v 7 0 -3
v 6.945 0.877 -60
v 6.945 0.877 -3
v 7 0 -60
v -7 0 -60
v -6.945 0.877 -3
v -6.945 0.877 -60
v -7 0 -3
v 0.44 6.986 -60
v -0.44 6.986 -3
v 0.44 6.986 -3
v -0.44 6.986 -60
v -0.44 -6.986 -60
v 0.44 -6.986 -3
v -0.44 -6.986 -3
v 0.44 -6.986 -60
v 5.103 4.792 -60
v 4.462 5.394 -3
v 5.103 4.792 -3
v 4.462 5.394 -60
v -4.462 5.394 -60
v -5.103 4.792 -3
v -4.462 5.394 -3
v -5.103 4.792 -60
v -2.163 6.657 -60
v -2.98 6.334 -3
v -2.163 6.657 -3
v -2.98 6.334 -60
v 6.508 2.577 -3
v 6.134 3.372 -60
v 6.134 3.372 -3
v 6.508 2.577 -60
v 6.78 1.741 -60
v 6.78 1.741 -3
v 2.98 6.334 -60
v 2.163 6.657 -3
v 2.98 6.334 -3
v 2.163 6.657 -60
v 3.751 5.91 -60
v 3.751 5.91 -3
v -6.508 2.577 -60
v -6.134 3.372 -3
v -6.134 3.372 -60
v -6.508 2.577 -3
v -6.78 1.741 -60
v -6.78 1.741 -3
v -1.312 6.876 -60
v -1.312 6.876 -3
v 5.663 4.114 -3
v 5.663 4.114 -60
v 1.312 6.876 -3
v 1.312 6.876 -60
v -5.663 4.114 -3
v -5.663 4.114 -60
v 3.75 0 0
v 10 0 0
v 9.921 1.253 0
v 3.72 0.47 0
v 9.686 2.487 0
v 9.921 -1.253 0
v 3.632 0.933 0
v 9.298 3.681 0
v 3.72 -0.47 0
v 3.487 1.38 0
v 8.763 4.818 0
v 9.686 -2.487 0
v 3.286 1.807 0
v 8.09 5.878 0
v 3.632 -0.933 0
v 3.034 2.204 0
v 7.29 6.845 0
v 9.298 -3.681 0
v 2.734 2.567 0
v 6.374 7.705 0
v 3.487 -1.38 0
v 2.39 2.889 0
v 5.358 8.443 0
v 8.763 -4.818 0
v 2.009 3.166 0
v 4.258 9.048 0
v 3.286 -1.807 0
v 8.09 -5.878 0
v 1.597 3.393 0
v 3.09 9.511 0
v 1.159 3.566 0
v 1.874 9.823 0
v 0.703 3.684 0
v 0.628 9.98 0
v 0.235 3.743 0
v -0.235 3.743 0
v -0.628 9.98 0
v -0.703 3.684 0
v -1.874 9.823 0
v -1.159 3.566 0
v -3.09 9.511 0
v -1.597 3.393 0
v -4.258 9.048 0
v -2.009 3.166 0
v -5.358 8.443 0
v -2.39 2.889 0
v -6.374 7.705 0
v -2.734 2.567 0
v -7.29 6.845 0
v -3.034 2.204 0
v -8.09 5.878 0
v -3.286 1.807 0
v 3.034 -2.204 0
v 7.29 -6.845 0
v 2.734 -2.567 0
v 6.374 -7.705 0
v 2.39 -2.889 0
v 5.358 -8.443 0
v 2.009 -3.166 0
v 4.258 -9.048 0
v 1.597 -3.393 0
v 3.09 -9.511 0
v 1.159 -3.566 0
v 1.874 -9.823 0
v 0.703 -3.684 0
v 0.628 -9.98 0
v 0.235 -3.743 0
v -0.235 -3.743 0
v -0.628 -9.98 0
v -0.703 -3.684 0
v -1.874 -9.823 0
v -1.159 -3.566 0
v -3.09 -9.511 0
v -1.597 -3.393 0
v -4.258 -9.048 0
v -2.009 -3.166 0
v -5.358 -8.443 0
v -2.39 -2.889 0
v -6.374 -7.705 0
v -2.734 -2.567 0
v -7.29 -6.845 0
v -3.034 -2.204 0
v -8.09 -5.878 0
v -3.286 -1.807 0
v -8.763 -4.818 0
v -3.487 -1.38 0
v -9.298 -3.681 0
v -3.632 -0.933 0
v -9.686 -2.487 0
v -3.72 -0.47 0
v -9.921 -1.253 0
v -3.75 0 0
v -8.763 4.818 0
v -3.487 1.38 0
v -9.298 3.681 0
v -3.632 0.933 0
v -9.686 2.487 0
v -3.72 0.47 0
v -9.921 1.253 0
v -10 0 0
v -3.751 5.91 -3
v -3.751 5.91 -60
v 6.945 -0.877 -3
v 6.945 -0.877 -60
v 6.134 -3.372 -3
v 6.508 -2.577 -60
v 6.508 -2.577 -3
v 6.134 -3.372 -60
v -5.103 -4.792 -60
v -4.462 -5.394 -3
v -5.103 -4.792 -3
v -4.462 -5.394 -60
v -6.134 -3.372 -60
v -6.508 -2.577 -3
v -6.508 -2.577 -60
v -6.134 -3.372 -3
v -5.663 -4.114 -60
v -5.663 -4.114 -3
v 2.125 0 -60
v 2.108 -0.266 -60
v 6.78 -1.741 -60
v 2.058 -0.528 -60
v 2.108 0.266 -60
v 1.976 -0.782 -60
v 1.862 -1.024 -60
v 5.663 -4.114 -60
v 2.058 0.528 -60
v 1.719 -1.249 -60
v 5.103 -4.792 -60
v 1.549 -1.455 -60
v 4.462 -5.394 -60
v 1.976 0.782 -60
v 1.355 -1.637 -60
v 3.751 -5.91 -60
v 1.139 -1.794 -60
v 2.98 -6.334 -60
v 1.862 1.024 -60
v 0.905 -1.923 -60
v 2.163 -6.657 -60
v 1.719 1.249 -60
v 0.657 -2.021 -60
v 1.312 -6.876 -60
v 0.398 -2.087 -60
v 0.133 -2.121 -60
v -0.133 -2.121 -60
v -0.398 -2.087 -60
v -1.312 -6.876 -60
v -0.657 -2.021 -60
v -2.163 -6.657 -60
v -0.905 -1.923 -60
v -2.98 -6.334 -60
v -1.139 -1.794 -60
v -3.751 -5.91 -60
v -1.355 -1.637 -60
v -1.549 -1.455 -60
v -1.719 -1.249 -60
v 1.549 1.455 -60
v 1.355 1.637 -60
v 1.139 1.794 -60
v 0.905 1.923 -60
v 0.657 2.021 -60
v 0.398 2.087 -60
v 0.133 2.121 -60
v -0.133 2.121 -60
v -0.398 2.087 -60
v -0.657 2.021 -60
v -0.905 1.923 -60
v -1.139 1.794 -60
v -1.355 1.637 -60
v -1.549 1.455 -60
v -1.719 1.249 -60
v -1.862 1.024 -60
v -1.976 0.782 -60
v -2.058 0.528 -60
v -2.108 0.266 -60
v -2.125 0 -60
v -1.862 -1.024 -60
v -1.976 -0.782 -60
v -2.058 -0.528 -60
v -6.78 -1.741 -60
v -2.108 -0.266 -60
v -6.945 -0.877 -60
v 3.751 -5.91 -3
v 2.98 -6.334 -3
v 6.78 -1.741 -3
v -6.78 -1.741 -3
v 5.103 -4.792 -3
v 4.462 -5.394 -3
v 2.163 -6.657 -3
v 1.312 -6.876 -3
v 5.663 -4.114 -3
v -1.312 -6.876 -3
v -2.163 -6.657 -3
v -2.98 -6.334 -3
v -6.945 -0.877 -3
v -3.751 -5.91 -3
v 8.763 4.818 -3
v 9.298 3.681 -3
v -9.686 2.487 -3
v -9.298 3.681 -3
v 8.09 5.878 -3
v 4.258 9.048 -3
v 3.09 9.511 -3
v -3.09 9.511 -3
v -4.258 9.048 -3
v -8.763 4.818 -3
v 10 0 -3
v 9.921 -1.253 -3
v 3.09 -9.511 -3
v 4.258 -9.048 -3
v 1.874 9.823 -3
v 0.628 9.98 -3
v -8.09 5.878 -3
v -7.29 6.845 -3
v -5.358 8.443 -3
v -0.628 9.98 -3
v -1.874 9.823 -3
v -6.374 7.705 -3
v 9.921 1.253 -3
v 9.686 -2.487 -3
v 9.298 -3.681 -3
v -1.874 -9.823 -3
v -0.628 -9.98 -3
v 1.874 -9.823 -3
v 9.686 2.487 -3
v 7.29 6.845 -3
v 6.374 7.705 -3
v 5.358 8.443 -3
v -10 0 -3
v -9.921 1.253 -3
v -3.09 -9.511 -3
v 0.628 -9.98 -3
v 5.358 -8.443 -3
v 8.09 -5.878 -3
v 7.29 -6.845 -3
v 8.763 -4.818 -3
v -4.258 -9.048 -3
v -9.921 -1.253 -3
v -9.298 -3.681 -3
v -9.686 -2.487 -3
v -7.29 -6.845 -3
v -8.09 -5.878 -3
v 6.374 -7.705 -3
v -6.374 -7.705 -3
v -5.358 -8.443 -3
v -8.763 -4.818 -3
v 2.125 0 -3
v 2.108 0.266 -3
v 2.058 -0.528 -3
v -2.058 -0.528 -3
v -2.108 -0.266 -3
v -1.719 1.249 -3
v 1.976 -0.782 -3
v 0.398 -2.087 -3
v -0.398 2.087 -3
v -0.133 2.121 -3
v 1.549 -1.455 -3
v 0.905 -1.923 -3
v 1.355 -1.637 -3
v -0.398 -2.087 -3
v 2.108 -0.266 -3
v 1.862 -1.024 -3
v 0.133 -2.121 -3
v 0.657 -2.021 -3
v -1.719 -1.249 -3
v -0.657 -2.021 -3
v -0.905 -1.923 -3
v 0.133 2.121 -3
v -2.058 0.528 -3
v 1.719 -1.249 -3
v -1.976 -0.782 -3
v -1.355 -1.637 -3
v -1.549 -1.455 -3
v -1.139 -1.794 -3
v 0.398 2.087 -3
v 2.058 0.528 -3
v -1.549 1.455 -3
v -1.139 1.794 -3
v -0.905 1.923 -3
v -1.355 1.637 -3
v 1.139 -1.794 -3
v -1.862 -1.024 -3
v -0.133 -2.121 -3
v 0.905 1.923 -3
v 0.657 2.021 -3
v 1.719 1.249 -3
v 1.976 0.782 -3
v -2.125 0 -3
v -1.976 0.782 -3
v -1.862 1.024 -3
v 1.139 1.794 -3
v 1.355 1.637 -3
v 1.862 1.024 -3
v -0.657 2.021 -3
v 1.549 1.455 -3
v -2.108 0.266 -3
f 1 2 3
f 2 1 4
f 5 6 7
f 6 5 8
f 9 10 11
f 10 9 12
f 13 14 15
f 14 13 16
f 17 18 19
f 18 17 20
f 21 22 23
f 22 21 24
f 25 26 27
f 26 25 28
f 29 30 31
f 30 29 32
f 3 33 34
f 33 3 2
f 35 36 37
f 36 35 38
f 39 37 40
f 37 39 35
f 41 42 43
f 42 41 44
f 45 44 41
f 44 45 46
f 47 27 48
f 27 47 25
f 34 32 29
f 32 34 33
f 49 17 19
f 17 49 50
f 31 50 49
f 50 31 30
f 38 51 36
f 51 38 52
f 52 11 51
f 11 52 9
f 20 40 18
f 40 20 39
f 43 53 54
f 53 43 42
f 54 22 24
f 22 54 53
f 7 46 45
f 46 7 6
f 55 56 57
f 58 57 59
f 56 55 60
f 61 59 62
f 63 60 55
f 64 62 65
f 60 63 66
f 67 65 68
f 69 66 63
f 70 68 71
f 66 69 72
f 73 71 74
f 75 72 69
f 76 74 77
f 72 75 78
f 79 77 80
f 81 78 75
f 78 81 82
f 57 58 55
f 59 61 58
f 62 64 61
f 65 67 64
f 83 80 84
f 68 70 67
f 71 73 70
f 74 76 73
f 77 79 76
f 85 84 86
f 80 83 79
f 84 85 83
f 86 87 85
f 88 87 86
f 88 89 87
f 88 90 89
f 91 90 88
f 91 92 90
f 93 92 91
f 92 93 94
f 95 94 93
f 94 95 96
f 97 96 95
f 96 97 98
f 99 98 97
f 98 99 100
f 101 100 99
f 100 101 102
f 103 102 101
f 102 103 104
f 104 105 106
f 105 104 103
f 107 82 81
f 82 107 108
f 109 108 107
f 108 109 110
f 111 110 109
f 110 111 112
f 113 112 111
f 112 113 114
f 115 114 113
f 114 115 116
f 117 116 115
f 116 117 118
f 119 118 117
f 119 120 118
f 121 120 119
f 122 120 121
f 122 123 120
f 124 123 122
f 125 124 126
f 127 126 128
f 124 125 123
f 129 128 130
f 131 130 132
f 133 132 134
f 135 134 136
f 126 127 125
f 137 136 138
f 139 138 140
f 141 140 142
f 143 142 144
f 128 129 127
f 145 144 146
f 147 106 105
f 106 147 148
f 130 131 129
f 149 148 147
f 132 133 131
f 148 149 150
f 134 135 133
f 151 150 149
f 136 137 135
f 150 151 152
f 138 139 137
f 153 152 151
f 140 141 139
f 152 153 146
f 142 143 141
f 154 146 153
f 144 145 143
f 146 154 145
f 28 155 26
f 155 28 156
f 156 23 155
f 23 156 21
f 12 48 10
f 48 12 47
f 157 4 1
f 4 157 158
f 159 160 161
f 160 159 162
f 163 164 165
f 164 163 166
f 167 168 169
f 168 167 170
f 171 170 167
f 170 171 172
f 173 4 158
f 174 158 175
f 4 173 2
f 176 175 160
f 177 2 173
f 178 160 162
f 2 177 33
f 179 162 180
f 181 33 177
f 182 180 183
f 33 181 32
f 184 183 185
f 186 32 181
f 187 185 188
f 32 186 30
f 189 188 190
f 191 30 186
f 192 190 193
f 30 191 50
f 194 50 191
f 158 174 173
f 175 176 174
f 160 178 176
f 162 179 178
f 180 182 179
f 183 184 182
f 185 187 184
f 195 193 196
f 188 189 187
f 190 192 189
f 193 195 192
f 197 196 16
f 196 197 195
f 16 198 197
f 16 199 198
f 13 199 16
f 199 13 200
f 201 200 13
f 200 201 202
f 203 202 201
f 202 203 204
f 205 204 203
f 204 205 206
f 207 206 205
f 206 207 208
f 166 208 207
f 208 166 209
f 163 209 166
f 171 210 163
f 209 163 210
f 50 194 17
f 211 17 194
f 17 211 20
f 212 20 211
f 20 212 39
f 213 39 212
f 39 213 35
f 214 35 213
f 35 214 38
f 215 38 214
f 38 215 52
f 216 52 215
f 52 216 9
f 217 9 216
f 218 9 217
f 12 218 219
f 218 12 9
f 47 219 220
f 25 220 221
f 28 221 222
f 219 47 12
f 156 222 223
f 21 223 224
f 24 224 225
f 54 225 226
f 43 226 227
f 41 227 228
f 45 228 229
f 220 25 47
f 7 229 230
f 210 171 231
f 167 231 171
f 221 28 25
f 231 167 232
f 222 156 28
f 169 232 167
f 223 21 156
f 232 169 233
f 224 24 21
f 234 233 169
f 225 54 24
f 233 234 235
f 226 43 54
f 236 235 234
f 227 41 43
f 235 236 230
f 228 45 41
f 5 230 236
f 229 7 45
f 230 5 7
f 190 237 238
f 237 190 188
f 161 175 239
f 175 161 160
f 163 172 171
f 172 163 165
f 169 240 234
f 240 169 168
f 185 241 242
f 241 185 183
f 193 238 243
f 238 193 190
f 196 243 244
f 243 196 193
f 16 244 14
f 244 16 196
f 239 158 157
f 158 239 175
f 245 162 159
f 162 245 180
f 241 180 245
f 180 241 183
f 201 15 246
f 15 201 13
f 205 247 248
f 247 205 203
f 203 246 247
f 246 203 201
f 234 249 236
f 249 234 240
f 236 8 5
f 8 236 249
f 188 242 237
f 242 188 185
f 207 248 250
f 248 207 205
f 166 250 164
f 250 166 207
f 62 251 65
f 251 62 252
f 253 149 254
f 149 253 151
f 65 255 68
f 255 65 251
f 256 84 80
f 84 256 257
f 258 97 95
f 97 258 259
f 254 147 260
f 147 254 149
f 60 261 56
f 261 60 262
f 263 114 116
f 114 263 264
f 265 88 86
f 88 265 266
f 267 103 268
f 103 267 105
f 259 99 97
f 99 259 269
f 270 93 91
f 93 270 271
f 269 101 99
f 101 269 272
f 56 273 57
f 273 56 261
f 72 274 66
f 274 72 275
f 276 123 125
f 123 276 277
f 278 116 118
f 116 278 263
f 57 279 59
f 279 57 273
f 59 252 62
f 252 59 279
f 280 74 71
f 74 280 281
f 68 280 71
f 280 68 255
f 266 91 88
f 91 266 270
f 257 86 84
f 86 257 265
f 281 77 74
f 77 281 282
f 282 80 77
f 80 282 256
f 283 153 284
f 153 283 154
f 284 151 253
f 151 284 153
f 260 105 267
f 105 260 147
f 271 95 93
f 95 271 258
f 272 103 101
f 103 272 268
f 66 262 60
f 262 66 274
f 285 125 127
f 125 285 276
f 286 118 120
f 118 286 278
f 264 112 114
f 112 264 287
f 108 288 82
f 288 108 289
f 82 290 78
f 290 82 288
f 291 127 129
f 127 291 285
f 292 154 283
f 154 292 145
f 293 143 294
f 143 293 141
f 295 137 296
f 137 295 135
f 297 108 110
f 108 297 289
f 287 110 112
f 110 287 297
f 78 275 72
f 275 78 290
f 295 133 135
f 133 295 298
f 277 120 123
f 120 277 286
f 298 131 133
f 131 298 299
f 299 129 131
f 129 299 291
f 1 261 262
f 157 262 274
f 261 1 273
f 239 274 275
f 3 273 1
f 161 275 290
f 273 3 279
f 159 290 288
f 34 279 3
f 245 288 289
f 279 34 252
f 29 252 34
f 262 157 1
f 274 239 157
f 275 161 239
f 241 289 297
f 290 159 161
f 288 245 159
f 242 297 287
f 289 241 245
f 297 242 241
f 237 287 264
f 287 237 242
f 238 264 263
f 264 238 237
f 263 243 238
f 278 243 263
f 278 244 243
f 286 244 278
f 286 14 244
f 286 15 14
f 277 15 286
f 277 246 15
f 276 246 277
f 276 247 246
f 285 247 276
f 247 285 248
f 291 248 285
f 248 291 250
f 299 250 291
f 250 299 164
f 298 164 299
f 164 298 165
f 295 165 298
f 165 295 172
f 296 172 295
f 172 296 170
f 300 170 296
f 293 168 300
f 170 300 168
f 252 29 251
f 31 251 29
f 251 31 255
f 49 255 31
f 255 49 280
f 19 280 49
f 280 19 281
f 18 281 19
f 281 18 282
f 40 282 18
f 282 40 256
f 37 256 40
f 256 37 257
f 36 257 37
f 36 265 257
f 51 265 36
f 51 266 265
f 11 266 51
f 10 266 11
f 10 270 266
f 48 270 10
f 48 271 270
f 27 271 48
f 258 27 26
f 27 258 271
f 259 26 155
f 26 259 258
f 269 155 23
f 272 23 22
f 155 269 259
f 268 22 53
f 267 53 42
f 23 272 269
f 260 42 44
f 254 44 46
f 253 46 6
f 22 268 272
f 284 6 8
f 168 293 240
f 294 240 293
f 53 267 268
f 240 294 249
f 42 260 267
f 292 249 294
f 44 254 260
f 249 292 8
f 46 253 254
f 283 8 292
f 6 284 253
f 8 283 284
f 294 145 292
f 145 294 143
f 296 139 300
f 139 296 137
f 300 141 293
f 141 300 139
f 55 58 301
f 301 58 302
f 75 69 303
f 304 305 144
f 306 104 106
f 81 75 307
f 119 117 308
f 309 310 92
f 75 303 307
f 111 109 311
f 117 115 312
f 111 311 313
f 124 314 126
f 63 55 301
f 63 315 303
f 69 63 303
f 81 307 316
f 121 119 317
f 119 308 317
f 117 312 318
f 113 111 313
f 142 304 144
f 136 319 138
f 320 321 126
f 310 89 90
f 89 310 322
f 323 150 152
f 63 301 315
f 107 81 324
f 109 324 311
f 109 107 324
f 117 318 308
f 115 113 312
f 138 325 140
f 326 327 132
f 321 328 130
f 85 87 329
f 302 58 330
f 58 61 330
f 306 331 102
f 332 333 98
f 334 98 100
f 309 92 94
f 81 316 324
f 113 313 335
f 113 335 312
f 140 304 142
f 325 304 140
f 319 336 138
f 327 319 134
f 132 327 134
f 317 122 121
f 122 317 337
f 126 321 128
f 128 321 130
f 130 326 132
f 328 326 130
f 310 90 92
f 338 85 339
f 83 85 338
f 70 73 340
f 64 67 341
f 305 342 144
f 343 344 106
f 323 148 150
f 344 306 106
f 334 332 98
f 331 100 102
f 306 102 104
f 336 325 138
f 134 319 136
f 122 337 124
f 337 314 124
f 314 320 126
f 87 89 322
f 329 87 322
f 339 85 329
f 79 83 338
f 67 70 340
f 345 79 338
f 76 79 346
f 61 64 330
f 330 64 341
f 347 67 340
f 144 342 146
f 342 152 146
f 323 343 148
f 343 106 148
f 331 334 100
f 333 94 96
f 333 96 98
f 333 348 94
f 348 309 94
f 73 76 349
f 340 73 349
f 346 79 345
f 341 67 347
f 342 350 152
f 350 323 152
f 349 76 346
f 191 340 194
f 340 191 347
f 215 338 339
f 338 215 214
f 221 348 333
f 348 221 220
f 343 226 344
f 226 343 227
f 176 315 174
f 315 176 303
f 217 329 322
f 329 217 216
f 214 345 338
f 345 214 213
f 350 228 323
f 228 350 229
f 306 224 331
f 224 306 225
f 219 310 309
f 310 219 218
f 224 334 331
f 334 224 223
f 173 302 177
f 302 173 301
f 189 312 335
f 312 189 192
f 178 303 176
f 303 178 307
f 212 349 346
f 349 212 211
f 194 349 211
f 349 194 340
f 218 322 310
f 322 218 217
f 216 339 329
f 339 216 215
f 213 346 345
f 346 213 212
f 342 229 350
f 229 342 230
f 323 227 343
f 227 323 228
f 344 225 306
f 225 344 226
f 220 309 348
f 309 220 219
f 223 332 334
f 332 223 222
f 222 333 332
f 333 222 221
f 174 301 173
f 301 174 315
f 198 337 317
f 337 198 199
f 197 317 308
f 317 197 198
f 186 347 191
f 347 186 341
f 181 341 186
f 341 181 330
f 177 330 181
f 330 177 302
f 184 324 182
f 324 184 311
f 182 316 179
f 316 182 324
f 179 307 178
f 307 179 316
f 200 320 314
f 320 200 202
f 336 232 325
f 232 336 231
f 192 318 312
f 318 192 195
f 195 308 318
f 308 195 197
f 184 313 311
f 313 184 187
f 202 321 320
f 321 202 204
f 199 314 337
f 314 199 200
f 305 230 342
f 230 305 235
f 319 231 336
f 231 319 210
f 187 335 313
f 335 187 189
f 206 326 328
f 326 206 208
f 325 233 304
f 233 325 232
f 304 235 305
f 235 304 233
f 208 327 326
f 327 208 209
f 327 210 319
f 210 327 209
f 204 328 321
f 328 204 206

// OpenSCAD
$fn = 50;


difference() {
	union() {
		translate(v = [0, 0, -60.0000000000]) {
			cylinder(h = 60, r = 7.0000000000);
		}
		translate(v = [0, 0, -3.0000000000]) {
			cylinder(h = 3, r = 10.0000000000);
		}
	}
	union() {
		translate(v = [0, 0, 0]) {
			rotate(a = [0, 0, 0]) {
				difference() {
					union() {
						#translate(v = [0, 0, -60.0000000000]) {
							cylinder(h = 60, r = 2.0000000000);
						}
						#translate(v = [0, 0, -3]) {
							cylinder(h = 3, r = 7.0000000000, r1 = 2.1250000000, r2 = 3.7500000000);
						}
						#translate(v = [0, 0, -60.0000000000]) {
							cylinder(h = 60, r = 2.1250000000);
						}
						#translate(v = [0, 0, -60.0000000000]) {
							cylinder(h = 60, r = 2.0000000000);
						}
					}
					union();
				}
			}
		}
	}
}
